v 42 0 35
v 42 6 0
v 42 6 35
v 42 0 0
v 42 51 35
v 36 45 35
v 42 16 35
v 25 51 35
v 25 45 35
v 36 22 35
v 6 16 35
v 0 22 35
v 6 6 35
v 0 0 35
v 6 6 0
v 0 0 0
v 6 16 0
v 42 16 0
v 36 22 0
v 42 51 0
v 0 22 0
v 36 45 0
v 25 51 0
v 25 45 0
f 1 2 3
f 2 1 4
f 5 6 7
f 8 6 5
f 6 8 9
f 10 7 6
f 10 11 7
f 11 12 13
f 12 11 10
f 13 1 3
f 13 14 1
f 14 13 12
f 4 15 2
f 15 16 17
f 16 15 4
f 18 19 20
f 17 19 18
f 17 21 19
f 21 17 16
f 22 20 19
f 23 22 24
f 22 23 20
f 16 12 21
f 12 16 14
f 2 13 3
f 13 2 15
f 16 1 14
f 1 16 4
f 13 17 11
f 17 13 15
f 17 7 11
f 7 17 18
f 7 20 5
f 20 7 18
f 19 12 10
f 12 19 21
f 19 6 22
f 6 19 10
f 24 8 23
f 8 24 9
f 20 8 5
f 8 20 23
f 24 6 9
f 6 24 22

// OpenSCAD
cube([42, 6, 35]);
cube([6, 16, 35]);
translate([0, 16, 0]) cube([42, 6, 35]);
translate([36, 16, 0]) cube([6, 30, 35]);
translate([25, 45, 0]) cube([17, 6, 35]);
